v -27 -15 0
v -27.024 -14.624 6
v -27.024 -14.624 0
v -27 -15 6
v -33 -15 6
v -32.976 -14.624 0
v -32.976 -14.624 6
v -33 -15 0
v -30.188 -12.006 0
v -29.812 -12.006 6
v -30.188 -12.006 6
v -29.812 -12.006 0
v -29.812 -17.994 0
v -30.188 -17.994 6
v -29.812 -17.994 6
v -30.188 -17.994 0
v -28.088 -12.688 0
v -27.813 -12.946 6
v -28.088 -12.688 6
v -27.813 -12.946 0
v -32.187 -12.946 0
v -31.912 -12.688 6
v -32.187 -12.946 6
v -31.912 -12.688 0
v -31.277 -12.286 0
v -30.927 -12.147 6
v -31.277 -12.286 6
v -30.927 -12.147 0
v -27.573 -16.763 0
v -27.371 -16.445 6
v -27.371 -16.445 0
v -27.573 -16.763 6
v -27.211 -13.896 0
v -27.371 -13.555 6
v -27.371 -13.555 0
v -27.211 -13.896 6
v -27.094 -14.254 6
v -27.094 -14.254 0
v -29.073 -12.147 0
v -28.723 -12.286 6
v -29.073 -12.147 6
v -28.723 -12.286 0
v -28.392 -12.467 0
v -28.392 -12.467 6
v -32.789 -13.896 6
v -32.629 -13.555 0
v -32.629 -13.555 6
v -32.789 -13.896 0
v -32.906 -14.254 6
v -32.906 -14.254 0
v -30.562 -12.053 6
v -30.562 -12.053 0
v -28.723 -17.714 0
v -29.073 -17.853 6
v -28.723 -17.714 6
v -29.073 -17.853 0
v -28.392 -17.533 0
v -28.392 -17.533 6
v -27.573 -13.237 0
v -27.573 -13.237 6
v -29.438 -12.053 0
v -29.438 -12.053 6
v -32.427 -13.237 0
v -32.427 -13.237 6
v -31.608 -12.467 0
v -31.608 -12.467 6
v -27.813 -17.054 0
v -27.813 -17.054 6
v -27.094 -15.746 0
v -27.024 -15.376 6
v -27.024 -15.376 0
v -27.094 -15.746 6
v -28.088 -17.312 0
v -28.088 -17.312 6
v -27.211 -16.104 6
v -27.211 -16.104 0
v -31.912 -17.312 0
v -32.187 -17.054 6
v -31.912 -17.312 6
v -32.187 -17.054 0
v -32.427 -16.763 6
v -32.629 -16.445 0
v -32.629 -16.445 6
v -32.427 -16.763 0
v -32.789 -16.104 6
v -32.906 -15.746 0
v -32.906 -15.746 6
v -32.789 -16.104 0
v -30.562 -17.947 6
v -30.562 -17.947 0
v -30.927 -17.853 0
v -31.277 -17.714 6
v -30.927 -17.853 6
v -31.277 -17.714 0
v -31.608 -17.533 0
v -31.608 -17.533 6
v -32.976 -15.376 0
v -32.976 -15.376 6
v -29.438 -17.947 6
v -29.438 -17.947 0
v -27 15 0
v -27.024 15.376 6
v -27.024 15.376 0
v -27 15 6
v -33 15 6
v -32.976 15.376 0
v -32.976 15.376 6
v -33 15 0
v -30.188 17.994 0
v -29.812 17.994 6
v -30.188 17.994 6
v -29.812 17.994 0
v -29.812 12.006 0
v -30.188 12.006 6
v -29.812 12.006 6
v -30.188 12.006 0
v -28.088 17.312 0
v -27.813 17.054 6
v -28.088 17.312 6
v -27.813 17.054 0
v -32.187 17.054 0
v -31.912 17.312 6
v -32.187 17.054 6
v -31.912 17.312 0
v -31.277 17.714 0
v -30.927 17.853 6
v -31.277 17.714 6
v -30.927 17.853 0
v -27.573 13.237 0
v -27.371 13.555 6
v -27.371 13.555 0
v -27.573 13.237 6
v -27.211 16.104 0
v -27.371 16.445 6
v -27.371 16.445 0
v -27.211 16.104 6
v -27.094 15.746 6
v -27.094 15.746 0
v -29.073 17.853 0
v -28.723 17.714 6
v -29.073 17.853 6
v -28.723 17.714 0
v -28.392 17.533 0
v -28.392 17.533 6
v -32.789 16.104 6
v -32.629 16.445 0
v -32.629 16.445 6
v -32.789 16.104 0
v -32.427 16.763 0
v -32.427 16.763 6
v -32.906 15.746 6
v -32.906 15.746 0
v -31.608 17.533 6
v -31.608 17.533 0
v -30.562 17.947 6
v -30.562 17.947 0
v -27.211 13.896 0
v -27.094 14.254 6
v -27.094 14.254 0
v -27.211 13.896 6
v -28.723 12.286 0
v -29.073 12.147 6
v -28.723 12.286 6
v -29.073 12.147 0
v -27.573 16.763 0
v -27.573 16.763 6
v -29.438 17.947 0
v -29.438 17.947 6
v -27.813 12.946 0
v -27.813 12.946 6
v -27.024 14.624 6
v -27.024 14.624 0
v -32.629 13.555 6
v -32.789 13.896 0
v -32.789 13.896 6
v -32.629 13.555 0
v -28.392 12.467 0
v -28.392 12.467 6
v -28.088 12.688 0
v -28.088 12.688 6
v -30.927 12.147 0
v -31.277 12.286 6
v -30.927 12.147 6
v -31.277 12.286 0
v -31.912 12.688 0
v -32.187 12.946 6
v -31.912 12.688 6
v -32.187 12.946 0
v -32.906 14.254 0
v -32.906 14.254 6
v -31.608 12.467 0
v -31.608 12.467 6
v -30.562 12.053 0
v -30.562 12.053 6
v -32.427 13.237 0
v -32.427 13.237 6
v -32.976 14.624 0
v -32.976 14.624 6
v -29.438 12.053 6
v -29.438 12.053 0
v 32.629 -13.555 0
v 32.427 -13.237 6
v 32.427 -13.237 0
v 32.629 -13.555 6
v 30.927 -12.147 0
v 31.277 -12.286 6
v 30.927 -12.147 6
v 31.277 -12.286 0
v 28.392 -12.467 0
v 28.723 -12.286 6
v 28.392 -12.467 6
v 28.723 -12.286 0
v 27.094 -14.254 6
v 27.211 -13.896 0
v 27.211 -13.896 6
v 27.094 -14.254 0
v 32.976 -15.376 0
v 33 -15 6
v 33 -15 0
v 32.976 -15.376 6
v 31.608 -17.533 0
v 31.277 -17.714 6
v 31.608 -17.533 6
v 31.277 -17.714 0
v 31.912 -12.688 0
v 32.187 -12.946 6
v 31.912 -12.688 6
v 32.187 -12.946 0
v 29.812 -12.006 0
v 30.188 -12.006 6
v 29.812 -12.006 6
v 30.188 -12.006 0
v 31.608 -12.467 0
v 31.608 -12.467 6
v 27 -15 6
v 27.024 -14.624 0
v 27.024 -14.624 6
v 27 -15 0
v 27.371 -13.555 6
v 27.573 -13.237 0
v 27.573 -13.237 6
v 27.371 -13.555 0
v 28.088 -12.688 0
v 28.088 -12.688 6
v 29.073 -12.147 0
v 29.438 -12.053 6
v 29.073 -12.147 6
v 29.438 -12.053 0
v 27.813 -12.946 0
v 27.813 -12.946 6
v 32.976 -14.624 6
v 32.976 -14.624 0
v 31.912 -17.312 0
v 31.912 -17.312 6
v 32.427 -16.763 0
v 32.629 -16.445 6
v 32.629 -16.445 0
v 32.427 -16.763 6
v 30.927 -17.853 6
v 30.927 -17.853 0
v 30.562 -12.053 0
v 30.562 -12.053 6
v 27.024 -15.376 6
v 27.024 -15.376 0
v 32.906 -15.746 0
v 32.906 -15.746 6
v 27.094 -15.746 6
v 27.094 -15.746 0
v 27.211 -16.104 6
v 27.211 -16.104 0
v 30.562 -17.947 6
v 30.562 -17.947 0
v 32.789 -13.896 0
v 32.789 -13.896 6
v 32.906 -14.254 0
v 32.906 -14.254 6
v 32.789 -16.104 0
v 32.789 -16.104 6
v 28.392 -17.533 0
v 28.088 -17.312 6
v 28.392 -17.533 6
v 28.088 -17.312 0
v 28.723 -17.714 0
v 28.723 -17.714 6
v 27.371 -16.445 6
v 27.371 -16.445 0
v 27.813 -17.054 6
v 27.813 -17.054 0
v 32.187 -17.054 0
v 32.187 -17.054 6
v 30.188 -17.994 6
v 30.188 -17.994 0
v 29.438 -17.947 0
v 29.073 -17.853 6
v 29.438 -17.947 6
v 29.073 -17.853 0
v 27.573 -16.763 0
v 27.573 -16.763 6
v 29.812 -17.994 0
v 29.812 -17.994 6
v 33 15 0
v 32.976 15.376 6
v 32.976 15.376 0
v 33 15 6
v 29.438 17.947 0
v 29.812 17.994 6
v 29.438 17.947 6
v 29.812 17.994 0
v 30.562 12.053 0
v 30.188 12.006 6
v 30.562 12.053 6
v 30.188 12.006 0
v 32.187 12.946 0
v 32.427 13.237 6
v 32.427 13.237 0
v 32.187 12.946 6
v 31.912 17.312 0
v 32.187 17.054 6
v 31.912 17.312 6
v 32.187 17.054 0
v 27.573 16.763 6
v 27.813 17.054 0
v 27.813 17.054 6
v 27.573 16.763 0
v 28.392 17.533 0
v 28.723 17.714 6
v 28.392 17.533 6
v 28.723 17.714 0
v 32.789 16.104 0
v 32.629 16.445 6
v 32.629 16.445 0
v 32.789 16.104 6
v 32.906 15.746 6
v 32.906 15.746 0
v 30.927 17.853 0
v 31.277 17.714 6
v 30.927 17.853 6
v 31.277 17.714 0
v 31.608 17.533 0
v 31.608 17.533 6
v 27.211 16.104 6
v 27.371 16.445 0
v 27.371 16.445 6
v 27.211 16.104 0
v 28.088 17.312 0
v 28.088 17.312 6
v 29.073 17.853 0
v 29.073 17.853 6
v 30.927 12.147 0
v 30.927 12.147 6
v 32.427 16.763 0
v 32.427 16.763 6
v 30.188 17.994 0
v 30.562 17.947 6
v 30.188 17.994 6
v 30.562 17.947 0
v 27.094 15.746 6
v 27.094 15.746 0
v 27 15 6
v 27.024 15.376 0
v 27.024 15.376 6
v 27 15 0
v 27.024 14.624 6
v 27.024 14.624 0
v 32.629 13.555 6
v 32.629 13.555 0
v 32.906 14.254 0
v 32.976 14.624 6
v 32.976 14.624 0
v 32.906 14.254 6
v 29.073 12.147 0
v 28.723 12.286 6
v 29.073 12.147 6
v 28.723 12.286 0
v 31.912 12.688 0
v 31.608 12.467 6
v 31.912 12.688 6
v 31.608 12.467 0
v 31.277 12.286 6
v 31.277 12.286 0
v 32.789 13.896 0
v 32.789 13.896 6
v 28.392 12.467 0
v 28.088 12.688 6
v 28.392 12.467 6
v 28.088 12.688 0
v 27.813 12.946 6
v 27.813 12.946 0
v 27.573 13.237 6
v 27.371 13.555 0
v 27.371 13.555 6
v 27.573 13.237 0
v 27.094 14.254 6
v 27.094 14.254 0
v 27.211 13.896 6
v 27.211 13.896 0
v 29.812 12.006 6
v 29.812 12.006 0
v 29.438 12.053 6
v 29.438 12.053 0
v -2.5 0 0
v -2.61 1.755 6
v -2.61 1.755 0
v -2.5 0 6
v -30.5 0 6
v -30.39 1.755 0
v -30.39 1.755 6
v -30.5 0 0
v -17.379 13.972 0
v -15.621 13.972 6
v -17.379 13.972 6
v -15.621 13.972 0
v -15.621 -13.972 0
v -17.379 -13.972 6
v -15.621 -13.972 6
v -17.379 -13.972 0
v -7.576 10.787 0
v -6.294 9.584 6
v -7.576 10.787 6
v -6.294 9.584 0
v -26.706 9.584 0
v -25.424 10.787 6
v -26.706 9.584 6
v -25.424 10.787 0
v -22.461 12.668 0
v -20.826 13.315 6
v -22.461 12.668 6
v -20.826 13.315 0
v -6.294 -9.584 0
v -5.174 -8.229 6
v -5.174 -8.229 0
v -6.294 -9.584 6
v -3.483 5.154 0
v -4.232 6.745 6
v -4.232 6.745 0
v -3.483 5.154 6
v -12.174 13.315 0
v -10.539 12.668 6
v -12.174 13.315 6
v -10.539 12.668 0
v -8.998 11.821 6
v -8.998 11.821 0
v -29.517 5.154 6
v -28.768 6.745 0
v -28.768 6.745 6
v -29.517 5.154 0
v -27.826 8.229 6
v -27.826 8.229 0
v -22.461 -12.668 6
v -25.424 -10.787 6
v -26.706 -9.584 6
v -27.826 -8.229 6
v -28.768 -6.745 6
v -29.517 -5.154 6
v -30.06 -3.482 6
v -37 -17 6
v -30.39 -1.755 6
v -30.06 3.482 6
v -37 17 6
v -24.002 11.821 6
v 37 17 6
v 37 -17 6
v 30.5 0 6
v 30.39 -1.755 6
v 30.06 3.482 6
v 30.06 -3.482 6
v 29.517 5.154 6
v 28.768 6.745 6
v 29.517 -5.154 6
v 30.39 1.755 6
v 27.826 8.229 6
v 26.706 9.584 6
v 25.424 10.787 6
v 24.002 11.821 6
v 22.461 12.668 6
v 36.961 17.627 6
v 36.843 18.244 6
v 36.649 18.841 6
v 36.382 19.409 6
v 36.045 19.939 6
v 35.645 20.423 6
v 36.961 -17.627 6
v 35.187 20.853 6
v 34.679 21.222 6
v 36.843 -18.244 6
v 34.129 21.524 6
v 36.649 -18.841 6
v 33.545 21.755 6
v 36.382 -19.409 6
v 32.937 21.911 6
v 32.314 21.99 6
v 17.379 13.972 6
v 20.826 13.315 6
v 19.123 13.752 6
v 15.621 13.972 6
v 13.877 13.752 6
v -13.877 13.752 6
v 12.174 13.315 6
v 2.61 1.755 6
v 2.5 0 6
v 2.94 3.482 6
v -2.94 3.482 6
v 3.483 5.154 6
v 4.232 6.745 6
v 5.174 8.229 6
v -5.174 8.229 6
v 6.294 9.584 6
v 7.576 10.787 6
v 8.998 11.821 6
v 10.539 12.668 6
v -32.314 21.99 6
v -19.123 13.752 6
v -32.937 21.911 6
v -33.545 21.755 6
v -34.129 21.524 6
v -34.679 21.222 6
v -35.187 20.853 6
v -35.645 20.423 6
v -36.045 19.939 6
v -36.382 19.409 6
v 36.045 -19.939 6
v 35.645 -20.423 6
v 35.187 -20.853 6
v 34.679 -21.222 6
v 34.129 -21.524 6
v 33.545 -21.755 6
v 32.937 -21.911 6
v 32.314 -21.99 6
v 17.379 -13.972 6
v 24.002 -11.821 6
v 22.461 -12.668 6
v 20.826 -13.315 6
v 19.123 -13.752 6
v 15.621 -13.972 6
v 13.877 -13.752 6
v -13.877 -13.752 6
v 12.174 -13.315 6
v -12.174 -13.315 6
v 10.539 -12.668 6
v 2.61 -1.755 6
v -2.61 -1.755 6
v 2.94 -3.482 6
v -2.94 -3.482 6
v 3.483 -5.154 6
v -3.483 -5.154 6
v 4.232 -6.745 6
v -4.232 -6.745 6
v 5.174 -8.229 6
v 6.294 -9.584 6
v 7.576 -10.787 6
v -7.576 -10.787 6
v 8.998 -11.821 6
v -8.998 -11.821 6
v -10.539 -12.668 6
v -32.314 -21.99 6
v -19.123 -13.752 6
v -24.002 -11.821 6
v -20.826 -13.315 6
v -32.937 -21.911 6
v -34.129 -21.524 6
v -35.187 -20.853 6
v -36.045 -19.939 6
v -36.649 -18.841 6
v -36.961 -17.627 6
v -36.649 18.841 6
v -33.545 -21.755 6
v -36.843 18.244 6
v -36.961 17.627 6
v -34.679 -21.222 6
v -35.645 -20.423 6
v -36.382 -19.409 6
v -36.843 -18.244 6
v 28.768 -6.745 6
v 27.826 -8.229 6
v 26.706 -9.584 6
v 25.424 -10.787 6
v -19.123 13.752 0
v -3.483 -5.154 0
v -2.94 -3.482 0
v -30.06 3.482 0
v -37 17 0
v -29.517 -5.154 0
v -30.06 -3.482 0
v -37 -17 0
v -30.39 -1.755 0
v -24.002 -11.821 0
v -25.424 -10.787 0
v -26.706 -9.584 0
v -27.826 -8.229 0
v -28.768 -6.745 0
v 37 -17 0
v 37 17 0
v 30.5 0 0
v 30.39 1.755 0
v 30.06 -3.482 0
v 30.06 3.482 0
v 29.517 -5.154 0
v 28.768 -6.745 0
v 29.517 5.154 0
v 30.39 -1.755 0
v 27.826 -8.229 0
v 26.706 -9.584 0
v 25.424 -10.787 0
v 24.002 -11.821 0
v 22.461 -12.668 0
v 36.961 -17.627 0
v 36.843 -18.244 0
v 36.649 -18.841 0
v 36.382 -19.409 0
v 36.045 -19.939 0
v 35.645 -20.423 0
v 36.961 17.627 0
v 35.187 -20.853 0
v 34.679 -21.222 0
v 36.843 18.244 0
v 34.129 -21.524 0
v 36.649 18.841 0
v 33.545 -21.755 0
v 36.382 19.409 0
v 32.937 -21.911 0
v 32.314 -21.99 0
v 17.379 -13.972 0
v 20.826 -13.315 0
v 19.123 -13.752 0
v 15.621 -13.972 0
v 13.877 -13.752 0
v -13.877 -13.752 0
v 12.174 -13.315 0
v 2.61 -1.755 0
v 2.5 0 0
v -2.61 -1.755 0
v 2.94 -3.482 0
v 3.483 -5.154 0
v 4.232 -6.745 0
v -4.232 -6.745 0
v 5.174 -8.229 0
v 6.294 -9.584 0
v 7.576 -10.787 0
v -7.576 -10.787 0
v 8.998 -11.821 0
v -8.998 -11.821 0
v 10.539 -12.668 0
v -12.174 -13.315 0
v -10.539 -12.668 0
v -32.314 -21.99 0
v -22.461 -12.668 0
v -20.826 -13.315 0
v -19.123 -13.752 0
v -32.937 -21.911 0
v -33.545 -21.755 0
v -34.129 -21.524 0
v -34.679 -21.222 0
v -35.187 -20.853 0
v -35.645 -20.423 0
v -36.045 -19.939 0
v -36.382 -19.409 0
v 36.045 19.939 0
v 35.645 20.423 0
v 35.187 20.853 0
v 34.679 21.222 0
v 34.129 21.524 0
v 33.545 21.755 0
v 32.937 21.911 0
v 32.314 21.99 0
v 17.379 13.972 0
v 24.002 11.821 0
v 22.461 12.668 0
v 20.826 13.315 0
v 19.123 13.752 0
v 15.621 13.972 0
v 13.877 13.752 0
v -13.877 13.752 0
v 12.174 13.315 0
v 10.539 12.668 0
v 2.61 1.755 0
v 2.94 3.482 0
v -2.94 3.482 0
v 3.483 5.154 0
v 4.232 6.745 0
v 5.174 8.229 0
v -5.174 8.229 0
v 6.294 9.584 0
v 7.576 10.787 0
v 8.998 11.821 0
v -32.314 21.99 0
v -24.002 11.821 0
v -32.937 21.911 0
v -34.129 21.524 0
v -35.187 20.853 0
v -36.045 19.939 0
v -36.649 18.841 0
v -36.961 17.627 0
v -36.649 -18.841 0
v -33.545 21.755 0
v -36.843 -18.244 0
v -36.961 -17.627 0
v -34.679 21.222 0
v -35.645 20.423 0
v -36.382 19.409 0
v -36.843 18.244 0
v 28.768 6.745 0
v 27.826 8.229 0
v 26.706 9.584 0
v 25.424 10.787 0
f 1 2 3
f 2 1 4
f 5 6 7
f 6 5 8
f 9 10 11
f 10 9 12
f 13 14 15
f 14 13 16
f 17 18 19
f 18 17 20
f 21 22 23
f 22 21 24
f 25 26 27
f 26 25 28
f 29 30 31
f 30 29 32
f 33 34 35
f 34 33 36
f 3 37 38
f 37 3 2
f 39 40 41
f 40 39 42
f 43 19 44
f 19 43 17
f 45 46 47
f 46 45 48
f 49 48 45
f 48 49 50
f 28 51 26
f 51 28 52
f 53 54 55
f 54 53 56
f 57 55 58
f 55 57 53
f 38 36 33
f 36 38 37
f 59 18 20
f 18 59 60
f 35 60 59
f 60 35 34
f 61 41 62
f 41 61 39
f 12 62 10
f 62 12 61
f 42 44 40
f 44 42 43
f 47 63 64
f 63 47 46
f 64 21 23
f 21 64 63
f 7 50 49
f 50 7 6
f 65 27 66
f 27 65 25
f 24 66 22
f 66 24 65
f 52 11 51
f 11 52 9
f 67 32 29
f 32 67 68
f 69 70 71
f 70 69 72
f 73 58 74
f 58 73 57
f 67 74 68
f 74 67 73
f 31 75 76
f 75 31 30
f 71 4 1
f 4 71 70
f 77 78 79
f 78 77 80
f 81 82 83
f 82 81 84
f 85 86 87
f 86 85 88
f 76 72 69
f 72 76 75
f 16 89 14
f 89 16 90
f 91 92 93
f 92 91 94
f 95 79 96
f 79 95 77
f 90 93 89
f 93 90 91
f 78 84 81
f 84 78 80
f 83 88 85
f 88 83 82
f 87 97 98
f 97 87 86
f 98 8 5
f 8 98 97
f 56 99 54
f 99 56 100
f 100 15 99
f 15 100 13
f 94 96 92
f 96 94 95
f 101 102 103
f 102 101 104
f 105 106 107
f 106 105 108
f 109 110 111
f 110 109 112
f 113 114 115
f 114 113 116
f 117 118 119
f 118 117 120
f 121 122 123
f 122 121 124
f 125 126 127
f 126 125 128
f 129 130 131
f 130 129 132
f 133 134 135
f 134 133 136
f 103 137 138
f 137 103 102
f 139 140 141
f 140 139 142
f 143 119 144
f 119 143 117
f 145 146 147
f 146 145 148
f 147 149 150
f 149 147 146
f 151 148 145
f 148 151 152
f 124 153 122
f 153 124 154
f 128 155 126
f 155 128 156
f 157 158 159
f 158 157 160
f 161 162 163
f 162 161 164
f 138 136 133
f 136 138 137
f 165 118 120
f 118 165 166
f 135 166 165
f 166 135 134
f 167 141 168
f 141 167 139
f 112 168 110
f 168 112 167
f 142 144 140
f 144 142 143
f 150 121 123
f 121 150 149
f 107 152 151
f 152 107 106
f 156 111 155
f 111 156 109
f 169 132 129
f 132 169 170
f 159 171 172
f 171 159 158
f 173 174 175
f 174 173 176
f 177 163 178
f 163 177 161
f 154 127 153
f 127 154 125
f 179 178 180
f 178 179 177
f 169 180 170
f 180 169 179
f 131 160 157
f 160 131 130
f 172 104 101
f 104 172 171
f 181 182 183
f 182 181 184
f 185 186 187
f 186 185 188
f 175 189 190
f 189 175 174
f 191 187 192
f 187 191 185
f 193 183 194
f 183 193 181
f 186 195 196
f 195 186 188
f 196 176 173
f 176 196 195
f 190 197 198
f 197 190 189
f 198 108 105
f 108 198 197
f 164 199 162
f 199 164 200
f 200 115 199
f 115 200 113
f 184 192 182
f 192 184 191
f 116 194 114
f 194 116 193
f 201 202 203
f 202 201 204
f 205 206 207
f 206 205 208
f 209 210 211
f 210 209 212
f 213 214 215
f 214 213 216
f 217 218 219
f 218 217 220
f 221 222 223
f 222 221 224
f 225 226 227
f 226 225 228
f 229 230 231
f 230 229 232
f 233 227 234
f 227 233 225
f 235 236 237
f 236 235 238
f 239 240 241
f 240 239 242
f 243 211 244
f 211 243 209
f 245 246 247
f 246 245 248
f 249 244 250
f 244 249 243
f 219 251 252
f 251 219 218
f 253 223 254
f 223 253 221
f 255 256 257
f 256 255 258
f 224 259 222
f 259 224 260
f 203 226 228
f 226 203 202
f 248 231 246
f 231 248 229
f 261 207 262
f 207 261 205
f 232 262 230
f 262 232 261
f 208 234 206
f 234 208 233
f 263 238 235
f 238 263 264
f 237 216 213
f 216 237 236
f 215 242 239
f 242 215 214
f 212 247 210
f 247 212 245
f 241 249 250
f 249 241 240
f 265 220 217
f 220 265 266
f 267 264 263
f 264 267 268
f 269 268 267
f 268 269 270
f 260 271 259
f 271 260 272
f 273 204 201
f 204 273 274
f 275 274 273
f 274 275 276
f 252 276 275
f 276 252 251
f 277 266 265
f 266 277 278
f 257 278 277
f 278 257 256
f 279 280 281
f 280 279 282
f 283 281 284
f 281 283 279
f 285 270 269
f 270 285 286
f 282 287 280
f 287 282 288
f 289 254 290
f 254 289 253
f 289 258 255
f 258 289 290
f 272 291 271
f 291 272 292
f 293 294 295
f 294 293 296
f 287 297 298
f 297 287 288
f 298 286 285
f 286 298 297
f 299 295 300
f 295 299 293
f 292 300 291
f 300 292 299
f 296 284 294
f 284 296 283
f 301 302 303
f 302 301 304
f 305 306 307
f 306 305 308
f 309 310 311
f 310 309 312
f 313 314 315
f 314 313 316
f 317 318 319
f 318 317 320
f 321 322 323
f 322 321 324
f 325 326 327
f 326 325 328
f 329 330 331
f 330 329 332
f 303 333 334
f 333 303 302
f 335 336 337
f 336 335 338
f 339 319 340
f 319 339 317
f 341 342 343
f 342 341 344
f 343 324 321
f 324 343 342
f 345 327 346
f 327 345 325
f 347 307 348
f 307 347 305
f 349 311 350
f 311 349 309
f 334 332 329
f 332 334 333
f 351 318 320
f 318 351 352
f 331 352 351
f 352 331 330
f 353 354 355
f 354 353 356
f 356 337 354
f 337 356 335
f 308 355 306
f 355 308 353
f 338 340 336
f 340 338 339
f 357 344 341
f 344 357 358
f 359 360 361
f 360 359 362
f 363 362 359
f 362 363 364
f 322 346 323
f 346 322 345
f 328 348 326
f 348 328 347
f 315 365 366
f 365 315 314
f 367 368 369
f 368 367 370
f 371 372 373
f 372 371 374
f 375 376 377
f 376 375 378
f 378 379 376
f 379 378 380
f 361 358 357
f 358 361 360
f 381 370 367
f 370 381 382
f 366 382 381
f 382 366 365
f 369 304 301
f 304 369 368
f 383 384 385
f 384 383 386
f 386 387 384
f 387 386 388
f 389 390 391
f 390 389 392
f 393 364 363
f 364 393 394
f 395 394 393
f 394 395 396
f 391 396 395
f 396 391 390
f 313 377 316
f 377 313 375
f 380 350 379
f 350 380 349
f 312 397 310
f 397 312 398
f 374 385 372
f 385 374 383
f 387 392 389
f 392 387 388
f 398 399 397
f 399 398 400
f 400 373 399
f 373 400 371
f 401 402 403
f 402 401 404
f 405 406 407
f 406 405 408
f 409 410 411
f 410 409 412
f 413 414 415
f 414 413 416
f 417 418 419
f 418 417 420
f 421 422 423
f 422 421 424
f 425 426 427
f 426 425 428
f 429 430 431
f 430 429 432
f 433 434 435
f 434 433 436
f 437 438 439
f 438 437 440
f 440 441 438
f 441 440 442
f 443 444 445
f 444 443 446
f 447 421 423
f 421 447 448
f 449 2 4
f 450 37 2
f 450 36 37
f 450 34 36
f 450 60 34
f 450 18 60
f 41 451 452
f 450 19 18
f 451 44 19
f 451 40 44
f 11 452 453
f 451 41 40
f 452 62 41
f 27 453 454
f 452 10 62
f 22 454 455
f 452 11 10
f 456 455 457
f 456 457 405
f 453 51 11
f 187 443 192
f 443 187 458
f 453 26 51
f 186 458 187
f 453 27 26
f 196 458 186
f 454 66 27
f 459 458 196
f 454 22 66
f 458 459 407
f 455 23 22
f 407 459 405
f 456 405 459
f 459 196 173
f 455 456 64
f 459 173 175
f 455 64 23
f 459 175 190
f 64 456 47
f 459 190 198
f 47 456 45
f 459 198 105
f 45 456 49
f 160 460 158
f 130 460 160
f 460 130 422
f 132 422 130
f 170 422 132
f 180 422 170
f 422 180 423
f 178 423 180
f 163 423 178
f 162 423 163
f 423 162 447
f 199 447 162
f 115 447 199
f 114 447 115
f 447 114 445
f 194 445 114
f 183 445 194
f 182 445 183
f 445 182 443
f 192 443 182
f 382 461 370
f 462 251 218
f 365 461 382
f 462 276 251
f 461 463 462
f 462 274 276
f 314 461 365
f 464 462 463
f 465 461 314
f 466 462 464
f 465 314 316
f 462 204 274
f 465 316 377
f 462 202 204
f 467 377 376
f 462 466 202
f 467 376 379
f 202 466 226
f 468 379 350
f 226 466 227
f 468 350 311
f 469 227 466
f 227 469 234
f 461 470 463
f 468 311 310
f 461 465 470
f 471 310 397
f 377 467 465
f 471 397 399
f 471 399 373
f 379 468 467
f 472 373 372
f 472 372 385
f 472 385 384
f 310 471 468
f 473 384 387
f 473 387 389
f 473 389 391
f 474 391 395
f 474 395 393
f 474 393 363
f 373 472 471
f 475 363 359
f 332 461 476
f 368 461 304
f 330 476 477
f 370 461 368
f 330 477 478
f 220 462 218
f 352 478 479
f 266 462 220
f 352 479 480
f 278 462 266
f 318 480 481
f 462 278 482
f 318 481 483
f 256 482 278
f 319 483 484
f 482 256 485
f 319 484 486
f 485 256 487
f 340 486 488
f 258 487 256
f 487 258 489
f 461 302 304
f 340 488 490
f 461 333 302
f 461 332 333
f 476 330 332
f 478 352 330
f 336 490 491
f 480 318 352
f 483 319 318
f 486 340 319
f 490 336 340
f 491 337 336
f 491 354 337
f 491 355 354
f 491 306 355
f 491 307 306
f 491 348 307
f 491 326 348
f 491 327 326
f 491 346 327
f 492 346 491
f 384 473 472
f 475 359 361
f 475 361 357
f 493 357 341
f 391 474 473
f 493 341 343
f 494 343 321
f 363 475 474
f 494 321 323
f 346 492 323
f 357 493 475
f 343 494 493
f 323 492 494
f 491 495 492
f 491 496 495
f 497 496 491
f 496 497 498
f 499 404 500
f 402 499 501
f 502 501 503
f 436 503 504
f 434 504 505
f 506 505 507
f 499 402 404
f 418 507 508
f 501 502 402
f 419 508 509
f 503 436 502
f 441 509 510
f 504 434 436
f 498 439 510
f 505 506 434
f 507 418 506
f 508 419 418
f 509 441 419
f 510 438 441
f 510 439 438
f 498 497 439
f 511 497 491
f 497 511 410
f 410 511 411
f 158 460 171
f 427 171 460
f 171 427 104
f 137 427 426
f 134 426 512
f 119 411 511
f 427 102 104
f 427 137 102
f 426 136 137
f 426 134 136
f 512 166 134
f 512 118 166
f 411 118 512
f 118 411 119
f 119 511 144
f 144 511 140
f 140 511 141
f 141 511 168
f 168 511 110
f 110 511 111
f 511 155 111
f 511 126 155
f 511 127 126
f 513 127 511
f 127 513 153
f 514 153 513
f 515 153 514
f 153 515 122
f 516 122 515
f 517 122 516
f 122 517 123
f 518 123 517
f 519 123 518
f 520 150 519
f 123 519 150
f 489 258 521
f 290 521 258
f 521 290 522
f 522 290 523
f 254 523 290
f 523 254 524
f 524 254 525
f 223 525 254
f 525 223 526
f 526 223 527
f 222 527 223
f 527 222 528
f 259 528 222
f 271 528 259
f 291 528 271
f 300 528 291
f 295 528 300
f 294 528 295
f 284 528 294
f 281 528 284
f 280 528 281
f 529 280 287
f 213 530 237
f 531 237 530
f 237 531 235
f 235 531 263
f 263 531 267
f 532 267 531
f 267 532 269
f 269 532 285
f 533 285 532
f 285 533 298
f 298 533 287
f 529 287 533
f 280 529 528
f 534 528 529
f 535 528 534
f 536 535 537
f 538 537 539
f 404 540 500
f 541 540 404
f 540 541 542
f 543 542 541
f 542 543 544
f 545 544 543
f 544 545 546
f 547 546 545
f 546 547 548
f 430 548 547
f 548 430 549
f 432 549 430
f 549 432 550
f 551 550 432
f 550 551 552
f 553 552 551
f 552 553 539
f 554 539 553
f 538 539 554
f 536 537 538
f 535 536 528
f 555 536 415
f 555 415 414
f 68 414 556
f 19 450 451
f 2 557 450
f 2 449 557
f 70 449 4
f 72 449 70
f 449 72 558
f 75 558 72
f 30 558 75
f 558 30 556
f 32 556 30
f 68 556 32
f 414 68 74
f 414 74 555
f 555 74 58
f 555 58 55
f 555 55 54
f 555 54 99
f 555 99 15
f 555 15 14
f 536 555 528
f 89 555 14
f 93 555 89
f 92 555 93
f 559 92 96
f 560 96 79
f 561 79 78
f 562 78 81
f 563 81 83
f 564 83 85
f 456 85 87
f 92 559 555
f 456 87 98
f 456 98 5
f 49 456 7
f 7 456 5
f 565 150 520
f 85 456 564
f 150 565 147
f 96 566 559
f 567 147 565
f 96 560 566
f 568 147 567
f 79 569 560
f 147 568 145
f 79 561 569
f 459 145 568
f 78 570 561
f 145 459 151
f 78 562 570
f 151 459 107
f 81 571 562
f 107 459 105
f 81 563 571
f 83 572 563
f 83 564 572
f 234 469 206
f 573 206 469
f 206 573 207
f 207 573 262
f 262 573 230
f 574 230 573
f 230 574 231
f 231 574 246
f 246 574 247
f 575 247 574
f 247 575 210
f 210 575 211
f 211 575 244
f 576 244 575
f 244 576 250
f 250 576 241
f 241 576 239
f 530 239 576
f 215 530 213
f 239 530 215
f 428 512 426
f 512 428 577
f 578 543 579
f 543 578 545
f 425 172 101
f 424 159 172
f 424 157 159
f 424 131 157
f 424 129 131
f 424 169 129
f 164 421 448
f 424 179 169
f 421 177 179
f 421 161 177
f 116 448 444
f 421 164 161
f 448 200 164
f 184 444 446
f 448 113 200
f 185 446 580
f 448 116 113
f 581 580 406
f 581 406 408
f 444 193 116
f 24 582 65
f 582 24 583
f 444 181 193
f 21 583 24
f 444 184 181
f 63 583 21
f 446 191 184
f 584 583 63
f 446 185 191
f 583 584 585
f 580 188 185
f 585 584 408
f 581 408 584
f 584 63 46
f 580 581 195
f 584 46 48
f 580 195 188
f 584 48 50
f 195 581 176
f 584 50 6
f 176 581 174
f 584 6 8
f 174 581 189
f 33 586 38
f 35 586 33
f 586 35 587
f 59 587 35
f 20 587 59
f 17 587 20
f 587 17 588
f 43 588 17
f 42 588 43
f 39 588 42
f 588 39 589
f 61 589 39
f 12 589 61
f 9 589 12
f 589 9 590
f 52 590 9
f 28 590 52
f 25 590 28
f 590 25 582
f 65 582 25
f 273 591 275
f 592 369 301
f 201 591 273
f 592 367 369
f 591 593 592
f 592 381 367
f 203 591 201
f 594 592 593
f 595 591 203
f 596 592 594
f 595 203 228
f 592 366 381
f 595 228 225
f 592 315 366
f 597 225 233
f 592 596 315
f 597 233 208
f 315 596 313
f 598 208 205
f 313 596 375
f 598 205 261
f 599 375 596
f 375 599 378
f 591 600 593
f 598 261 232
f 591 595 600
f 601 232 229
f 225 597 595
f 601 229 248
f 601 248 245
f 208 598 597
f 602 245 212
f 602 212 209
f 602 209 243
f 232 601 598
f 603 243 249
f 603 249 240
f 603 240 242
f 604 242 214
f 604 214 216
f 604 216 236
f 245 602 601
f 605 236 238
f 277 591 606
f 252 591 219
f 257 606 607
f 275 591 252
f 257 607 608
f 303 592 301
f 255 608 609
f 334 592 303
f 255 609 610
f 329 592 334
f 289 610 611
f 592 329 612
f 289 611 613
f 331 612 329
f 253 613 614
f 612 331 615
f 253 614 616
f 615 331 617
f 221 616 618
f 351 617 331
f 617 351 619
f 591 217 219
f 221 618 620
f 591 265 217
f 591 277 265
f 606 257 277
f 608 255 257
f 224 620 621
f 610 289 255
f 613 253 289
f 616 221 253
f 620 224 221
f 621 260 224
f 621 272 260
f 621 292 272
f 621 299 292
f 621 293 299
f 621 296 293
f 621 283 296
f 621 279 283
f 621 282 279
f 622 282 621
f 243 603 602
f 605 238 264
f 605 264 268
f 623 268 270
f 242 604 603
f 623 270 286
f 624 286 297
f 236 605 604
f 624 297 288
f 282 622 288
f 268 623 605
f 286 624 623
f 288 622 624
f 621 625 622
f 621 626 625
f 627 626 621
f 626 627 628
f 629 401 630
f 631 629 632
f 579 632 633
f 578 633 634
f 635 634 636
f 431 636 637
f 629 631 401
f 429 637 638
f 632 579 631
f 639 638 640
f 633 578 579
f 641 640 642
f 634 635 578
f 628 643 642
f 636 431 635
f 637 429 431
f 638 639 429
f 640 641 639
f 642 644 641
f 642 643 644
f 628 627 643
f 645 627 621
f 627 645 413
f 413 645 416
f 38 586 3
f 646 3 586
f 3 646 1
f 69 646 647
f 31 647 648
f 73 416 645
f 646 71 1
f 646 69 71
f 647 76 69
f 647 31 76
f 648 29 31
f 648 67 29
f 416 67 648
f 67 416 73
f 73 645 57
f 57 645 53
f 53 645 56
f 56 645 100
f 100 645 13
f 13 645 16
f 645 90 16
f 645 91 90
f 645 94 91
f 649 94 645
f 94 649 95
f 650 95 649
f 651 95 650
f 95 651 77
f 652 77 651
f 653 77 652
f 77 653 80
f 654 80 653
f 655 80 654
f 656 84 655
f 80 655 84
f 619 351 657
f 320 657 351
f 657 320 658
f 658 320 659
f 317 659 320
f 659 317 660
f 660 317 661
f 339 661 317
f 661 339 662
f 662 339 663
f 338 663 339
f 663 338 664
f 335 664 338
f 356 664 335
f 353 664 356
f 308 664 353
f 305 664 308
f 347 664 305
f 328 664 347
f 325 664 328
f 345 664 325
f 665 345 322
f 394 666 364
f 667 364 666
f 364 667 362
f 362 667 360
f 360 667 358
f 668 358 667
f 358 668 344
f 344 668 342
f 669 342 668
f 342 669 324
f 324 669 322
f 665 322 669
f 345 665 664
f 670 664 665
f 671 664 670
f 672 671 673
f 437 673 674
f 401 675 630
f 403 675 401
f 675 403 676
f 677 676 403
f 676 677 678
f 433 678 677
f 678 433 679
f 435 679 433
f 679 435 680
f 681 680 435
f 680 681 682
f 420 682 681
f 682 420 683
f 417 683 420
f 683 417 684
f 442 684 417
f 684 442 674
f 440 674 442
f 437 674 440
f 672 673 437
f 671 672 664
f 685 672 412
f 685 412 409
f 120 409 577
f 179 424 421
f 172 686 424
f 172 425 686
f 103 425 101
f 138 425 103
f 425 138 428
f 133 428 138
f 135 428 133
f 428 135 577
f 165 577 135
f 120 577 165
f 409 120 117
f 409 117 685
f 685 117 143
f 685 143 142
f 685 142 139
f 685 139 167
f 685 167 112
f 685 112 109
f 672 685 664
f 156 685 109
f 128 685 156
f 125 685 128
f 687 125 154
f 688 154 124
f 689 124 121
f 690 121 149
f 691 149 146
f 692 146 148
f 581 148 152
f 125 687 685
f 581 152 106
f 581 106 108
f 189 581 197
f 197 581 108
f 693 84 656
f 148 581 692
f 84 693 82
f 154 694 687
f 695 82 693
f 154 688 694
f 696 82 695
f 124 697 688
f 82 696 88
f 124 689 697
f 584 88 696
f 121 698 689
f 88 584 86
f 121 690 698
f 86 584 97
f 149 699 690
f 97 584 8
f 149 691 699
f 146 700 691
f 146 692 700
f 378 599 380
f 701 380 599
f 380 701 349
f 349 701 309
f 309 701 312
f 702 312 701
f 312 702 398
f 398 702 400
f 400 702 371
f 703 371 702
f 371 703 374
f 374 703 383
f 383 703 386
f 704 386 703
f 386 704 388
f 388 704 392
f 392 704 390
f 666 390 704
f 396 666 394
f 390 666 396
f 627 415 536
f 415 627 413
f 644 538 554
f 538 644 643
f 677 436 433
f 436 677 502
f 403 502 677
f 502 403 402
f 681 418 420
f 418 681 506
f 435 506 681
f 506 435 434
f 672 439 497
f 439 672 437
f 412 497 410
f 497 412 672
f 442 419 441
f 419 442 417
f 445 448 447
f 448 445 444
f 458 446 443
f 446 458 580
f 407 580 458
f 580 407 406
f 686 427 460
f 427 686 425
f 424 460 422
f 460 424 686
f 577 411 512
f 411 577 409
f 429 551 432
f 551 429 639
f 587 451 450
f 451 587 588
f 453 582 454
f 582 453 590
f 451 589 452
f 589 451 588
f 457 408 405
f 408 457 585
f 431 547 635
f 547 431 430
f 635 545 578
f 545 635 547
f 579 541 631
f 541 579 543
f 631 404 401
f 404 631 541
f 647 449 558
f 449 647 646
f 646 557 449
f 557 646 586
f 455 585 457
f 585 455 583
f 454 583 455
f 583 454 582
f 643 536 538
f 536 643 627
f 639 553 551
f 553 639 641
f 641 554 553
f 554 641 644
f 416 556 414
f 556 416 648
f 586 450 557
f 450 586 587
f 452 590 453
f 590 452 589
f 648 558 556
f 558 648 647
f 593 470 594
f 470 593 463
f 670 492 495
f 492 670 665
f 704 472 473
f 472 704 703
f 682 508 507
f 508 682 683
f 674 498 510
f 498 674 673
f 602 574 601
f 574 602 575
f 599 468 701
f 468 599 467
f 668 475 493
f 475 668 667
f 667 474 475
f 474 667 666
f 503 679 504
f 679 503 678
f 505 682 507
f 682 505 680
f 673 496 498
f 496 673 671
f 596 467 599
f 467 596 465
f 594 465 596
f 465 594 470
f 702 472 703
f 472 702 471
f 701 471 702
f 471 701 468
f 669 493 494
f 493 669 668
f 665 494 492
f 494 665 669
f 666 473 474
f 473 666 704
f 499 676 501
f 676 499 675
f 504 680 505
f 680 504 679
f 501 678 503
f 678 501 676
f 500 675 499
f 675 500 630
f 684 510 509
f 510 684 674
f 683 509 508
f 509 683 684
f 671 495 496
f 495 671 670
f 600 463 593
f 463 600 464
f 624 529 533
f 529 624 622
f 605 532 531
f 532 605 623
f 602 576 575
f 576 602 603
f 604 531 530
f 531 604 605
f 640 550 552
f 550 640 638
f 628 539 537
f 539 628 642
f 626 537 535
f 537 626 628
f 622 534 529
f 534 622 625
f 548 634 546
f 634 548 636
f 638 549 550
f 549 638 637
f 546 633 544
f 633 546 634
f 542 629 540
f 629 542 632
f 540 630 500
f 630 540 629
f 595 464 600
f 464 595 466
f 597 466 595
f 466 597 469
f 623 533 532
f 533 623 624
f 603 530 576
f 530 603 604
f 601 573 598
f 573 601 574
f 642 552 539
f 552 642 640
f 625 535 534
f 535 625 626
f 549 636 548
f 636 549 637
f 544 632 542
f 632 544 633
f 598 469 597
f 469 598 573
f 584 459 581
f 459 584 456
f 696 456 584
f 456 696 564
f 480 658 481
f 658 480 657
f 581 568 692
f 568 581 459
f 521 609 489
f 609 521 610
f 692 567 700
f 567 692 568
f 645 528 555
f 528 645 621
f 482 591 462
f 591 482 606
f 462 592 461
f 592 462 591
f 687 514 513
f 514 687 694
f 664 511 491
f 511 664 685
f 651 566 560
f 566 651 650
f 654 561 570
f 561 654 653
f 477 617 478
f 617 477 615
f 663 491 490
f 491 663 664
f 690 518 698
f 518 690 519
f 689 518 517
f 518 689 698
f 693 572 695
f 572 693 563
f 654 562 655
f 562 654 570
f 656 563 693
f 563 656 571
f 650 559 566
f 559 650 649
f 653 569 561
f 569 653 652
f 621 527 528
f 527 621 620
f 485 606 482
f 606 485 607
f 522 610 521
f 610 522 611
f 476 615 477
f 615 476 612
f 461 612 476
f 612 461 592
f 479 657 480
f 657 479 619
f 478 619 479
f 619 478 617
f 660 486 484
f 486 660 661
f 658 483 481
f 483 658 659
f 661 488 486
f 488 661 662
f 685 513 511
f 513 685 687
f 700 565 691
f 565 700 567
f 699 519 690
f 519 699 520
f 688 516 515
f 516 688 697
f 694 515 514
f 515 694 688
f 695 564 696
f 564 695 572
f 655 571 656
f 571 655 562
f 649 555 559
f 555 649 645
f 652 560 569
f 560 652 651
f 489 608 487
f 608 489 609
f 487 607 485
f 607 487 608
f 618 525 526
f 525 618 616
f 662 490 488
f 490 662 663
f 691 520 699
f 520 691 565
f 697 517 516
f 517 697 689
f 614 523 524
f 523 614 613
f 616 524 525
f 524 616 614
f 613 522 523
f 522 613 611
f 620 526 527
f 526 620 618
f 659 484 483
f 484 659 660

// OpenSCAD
$fn = 50;


difference() {
	union() {
		hull() {
			translate(v = [-32.0000000000, 17.0000000000, 0]) {
				cylinder(h = 6, r = 5);
			}
			translate(v = [32.0000000000, 17.0000000000, 0]) {
				cylinder(h = 6, r = 5);
			}
			translate(v = [-32.0000000000, -17.0000000000, 0]) {
				cylinder(h = 6, r = 5);
			}
			translate(v = [32.0000000000, -17.0000000000, 0]) {
				cylinder(h = 6, r = 5);
			}
		}
	}
	union() {
		#translate(v = [-30.0000000000, -15.0000000000, -100.0000000000]) {
			cylinder(h = 200, r = 3.0000000000);
		}
		#translate(v = [-30.0000000000, 15.0000000000, -100.0000000000]) {
			cylinder(h = 200, r = 3.0000000000);
		}
		#translate(v = [30.0000000000, -15.0000000000, -100.0000000000]) {
			cylinder(h = 200, r = 3.0000000000);
		}
		#translate(v = [30.0000000000, 15.0000000000, -100.0000000000]) {
			cylinder(h = 200, r = 3.0000000000);
		}
		#translate(v = [-16.5000000000, 0, 0]) {
			cylinder(h = 6, r = 14.0000000000);
		}
		#translate(v = [16.5000000000, 0, 0]) {
			cylinder(h = 6, r = 14.0000000000);
		}
	}
}
